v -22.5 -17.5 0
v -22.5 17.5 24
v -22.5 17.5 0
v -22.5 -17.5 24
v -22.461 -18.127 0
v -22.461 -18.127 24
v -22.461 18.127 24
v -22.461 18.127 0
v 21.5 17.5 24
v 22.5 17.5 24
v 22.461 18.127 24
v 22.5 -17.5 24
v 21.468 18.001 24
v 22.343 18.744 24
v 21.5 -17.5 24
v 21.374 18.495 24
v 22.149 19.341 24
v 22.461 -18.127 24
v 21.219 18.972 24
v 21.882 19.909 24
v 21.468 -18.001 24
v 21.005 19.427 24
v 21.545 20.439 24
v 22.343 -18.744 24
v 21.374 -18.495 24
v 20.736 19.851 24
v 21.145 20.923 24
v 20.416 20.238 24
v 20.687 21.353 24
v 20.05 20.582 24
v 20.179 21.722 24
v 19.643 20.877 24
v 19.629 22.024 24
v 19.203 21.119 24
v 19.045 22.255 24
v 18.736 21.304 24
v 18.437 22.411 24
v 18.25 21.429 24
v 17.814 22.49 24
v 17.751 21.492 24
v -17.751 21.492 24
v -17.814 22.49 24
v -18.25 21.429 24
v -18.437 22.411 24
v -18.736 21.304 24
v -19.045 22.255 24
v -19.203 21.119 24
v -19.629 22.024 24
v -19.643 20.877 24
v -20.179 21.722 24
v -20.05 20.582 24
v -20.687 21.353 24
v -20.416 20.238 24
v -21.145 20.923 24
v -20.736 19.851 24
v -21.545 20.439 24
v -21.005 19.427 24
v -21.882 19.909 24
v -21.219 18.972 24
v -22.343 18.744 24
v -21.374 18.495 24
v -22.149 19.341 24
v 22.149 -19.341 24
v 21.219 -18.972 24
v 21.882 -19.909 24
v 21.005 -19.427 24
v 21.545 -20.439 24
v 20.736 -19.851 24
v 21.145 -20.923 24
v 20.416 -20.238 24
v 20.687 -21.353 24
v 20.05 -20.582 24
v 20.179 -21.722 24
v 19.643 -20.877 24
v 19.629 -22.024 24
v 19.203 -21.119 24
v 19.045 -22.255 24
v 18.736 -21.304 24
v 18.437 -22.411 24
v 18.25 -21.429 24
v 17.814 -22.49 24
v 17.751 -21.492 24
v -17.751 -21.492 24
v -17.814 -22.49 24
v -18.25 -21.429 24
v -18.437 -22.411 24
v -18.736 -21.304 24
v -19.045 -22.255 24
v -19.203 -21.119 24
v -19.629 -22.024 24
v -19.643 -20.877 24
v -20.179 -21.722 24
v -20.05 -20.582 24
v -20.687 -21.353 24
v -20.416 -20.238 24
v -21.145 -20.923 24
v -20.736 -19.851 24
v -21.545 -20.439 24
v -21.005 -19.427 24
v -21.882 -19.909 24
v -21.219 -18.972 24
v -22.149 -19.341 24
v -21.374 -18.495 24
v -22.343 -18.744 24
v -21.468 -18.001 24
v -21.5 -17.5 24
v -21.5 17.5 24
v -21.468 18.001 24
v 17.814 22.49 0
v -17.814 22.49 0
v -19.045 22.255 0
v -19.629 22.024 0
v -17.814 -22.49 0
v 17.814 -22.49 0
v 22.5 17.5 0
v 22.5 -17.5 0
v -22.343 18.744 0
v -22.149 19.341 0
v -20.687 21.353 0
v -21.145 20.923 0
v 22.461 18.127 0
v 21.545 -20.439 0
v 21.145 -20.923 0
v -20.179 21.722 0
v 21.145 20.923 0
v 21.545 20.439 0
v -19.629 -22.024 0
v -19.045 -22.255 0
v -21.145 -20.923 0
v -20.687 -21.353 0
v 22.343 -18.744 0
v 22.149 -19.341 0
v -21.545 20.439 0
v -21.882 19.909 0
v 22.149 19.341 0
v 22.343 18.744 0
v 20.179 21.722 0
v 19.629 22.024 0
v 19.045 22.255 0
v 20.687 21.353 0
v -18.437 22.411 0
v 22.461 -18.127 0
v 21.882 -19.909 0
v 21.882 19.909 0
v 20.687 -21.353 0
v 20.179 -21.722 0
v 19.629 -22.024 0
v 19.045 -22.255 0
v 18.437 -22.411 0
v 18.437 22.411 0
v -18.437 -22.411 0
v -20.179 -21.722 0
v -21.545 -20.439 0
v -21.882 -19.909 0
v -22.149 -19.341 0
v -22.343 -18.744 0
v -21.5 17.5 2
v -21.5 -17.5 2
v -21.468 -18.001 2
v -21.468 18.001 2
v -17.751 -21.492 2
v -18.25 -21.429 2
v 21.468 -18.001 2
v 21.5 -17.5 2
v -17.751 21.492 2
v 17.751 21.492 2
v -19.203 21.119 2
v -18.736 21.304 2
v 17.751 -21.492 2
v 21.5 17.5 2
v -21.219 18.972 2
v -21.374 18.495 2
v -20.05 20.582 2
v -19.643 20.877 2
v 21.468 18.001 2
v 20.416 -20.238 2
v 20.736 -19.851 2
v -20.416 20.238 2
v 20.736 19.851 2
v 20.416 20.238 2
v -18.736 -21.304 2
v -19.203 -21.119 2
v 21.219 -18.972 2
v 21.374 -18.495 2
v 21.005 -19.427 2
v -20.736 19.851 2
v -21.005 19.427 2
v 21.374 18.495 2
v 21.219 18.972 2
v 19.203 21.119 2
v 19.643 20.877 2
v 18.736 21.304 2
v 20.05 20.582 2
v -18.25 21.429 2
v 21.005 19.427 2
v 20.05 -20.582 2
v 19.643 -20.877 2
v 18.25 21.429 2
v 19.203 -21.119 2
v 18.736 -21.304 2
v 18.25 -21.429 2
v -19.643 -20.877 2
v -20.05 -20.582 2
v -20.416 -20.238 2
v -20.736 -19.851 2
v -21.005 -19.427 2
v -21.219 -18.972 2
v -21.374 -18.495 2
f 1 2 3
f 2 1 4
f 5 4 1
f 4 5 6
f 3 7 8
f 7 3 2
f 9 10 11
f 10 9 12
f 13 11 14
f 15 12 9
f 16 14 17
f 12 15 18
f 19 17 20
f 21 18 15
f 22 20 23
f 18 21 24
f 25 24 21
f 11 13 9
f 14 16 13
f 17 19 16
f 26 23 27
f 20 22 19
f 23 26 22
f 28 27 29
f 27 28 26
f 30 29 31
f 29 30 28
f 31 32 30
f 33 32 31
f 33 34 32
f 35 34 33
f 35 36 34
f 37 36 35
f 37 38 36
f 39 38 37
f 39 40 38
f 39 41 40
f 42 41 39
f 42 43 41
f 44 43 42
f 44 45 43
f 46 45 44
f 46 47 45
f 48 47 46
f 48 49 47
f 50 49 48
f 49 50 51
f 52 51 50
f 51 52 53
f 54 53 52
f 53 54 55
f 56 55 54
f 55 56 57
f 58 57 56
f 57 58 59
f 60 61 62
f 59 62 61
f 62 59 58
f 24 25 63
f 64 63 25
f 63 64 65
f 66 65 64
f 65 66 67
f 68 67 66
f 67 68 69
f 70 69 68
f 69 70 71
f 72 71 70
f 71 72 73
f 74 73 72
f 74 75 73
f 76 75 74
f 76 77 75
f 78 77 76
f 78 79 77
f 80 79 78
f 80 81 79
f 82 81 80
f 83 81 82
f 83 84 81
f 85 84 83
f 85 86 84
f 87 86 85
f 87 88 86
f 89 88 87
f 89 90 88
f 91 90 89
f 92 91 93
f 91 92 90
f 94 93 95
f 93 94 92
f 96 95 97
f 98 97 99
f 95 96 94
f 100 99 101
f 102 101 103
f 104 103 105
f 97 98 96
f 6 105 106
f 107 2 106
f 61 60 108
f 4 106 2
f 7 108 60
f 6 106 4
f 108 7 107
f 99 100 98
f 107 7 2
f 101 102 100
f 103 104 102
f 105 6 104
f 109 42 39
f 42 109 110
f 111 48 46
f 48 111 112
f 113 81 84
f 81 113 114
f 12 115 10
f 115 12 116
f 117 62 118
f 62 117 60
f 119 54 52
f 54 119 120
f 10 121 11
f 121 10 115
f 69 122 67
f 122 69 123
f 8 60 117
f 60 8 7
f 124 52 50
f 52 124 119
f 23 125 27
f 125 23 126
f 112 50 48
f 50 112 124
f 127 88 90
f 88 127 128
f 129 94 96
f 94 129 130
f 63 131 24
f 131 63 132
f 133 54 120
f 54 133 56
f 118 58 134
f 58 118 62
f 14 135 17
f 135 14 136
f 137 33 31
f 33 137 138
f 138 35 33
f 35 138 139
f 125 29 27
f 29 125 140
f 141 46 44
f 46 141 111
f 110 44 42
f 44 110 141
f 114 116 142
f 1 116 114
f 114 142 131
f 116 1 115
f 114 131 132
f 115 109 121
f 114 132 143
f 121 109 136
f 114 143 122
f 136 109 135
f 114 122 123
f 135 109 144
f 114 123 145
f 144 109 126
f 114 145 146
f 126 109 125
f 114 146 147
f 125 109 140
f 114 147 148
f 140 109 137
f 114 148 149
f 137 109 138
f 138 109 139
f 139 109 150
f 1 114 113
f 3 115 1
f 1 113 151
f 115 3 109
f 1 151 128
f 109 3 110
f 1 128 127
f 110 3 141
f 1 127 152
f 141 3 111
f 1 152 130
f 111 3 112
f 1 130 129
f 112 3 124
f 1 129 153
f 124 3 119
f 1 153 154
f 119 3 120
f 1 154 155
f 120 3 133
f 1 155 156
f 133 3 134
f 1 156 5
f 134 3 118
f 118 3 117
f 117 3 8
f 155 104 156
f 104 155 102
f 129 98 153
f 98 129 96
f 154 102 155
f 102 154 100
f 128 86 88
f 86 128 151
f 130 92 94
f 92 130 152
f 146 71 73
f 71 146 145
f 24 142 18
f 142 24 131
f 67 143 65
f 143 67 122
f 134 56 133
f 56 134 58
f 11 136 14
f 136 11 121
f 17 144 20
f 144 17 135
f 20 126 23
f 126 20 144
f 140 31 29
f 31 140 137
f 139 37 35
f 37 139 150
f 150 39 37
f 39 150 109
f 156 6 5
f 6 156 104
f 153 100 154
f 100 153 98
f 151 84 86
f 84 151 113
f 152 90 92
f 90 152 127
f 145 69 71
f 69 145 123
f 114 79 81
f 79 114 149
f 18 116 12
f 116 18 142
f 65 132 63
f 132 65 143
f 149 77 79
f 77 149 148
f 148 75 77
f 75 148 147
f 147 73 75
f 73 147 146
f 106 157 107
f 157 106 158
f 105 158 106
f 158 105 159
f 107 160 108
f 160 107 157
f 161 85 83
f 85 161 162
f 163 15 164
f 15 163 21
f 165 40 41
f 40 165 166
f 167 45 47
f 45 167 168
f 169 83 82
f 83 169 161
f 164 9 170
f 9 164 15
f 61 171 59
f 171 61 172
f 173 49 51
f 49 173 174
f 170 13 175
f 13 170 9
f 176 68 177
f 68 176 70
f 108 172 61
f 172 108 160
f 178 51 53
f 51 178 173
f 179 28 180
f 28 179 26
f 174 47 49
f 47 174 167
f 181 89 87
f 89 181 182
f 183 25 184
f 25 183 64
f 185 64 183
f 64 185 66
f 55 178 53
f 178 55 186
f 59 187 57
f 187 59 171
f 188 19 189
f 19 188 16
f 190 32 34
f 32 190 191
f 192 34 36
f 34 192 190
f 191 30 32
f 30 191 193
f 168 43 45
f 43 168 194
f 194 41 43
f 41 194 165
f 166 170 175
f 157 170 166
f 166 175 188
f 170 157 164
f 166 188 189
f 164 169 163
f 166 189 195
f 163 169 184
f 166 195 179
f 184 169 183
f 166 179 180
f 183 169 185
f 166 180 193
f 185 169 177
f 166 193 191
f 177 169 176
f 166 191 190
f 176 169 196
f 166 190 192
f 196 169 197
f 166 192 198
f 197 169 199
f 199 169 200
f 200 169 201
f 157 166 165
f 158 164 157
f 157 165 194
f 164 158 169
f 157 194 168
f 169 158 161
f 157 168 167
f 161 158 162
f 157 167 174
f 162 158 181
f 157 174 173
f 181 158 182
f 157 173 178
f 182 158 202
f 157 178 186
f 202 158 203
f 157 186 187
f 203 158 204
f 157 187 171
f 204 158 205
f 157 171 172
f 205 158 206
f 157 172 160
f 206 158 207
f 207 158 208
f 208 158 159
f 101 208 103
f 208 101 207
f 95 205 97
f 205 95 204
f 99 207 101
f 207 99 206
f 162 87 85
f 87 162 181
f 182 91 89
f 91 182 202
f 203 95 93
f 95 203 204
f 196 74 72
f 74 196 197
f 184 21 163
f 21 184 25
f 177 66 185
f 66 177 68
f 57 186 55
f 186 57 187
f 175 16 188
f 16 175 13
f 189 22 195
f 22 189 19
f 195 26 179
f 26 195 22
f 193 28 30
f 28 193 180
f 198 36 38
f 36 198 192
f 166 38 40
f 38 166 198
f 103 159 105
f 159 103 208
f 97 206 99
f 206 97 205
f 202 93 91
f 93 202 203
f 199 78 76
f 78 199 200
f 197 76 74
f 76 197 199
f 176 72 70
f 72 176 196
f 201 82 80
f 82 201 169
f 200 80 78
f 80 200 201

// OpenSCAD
$fn = 50;


difference() {
	union() {
		hull() {
			translate(v = [-17.5000000000, 17.5000000000, 0]) {
				cylinder(h = 24, r = 5);
			}
			translate(v = [17.5000000000, 17.5000000000, 0]) {
				cylinder(h = 24, r = 5);
			}
			translate(v = [-17.5000000000, -17.5000000000, 0]) {
				cylinder(h = 24, r = 5);
			}
			translate(v = [17.5000000000, -17.5000000000, 0]) {
				cylinder(h = 24, r = 5);
			}
		}
	}
	union() {
		translate(v = [0, 0, 2]) {
			#hull() {
				translate(v = [-17.5000000000, 17.5000000000, 0]) {
					cylinder(h = 22, r = 4);
				}
				translate(v = [17.5000000000, 17.5000000000, 0]) {
					cylinder(h = 22, r = 4);
				}
				translate(v = [-17.5000000000, -17.5000000000, 0]) {
					cylinder(h = 22, r = 4);
				}
				translate(v = [17.5000000000, -17.5000000000, 0]) {
					cylinder(h = 22, r = 4);
				}
			}
		}
	}
}
